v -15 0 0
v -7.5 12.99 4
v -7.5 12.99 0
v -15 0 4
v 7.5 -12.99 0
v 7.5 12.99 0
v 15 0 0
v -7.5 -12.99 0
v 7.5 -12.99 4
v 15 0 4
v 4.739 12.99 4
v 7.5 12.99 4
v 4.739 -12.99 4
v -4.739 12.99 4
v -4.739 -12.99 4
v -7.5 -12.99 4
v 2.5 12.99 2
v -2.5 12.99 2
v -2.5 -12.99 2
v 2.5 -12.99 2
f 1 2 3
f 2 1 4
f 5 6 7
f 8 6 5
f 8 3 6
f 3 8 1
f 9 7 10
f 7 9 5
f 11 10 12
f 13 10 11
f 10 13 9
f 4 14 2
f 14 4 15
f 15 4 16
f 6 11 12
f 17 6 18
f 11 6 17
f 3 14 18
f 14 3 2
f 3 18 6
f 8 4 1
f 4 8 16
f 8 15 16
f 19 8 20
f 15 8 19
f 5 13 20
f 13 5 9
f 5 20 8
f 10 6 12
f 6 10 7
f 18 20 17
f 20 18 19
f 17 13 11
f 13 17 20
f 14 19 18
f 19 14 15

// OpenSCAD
difference()
{
    color("Peru", 1.0)
    {
        // hexagon base
        linear_extrude(height = 4, center = false, convexity = 10, twist = 0)
        circle(r=15, $fn=6);
    }
    
    color("DogerBlue", 1.0)
    {
        // canal shape
        rotate([90,0,0])
        linear_extrude(height=30, center=true, convexity = 10, twist = 0)
        polygon(points=[[-4.75,4.01],[4.75,4.01],[2.5,2], [-2.5,2]]);
    }
    
}
